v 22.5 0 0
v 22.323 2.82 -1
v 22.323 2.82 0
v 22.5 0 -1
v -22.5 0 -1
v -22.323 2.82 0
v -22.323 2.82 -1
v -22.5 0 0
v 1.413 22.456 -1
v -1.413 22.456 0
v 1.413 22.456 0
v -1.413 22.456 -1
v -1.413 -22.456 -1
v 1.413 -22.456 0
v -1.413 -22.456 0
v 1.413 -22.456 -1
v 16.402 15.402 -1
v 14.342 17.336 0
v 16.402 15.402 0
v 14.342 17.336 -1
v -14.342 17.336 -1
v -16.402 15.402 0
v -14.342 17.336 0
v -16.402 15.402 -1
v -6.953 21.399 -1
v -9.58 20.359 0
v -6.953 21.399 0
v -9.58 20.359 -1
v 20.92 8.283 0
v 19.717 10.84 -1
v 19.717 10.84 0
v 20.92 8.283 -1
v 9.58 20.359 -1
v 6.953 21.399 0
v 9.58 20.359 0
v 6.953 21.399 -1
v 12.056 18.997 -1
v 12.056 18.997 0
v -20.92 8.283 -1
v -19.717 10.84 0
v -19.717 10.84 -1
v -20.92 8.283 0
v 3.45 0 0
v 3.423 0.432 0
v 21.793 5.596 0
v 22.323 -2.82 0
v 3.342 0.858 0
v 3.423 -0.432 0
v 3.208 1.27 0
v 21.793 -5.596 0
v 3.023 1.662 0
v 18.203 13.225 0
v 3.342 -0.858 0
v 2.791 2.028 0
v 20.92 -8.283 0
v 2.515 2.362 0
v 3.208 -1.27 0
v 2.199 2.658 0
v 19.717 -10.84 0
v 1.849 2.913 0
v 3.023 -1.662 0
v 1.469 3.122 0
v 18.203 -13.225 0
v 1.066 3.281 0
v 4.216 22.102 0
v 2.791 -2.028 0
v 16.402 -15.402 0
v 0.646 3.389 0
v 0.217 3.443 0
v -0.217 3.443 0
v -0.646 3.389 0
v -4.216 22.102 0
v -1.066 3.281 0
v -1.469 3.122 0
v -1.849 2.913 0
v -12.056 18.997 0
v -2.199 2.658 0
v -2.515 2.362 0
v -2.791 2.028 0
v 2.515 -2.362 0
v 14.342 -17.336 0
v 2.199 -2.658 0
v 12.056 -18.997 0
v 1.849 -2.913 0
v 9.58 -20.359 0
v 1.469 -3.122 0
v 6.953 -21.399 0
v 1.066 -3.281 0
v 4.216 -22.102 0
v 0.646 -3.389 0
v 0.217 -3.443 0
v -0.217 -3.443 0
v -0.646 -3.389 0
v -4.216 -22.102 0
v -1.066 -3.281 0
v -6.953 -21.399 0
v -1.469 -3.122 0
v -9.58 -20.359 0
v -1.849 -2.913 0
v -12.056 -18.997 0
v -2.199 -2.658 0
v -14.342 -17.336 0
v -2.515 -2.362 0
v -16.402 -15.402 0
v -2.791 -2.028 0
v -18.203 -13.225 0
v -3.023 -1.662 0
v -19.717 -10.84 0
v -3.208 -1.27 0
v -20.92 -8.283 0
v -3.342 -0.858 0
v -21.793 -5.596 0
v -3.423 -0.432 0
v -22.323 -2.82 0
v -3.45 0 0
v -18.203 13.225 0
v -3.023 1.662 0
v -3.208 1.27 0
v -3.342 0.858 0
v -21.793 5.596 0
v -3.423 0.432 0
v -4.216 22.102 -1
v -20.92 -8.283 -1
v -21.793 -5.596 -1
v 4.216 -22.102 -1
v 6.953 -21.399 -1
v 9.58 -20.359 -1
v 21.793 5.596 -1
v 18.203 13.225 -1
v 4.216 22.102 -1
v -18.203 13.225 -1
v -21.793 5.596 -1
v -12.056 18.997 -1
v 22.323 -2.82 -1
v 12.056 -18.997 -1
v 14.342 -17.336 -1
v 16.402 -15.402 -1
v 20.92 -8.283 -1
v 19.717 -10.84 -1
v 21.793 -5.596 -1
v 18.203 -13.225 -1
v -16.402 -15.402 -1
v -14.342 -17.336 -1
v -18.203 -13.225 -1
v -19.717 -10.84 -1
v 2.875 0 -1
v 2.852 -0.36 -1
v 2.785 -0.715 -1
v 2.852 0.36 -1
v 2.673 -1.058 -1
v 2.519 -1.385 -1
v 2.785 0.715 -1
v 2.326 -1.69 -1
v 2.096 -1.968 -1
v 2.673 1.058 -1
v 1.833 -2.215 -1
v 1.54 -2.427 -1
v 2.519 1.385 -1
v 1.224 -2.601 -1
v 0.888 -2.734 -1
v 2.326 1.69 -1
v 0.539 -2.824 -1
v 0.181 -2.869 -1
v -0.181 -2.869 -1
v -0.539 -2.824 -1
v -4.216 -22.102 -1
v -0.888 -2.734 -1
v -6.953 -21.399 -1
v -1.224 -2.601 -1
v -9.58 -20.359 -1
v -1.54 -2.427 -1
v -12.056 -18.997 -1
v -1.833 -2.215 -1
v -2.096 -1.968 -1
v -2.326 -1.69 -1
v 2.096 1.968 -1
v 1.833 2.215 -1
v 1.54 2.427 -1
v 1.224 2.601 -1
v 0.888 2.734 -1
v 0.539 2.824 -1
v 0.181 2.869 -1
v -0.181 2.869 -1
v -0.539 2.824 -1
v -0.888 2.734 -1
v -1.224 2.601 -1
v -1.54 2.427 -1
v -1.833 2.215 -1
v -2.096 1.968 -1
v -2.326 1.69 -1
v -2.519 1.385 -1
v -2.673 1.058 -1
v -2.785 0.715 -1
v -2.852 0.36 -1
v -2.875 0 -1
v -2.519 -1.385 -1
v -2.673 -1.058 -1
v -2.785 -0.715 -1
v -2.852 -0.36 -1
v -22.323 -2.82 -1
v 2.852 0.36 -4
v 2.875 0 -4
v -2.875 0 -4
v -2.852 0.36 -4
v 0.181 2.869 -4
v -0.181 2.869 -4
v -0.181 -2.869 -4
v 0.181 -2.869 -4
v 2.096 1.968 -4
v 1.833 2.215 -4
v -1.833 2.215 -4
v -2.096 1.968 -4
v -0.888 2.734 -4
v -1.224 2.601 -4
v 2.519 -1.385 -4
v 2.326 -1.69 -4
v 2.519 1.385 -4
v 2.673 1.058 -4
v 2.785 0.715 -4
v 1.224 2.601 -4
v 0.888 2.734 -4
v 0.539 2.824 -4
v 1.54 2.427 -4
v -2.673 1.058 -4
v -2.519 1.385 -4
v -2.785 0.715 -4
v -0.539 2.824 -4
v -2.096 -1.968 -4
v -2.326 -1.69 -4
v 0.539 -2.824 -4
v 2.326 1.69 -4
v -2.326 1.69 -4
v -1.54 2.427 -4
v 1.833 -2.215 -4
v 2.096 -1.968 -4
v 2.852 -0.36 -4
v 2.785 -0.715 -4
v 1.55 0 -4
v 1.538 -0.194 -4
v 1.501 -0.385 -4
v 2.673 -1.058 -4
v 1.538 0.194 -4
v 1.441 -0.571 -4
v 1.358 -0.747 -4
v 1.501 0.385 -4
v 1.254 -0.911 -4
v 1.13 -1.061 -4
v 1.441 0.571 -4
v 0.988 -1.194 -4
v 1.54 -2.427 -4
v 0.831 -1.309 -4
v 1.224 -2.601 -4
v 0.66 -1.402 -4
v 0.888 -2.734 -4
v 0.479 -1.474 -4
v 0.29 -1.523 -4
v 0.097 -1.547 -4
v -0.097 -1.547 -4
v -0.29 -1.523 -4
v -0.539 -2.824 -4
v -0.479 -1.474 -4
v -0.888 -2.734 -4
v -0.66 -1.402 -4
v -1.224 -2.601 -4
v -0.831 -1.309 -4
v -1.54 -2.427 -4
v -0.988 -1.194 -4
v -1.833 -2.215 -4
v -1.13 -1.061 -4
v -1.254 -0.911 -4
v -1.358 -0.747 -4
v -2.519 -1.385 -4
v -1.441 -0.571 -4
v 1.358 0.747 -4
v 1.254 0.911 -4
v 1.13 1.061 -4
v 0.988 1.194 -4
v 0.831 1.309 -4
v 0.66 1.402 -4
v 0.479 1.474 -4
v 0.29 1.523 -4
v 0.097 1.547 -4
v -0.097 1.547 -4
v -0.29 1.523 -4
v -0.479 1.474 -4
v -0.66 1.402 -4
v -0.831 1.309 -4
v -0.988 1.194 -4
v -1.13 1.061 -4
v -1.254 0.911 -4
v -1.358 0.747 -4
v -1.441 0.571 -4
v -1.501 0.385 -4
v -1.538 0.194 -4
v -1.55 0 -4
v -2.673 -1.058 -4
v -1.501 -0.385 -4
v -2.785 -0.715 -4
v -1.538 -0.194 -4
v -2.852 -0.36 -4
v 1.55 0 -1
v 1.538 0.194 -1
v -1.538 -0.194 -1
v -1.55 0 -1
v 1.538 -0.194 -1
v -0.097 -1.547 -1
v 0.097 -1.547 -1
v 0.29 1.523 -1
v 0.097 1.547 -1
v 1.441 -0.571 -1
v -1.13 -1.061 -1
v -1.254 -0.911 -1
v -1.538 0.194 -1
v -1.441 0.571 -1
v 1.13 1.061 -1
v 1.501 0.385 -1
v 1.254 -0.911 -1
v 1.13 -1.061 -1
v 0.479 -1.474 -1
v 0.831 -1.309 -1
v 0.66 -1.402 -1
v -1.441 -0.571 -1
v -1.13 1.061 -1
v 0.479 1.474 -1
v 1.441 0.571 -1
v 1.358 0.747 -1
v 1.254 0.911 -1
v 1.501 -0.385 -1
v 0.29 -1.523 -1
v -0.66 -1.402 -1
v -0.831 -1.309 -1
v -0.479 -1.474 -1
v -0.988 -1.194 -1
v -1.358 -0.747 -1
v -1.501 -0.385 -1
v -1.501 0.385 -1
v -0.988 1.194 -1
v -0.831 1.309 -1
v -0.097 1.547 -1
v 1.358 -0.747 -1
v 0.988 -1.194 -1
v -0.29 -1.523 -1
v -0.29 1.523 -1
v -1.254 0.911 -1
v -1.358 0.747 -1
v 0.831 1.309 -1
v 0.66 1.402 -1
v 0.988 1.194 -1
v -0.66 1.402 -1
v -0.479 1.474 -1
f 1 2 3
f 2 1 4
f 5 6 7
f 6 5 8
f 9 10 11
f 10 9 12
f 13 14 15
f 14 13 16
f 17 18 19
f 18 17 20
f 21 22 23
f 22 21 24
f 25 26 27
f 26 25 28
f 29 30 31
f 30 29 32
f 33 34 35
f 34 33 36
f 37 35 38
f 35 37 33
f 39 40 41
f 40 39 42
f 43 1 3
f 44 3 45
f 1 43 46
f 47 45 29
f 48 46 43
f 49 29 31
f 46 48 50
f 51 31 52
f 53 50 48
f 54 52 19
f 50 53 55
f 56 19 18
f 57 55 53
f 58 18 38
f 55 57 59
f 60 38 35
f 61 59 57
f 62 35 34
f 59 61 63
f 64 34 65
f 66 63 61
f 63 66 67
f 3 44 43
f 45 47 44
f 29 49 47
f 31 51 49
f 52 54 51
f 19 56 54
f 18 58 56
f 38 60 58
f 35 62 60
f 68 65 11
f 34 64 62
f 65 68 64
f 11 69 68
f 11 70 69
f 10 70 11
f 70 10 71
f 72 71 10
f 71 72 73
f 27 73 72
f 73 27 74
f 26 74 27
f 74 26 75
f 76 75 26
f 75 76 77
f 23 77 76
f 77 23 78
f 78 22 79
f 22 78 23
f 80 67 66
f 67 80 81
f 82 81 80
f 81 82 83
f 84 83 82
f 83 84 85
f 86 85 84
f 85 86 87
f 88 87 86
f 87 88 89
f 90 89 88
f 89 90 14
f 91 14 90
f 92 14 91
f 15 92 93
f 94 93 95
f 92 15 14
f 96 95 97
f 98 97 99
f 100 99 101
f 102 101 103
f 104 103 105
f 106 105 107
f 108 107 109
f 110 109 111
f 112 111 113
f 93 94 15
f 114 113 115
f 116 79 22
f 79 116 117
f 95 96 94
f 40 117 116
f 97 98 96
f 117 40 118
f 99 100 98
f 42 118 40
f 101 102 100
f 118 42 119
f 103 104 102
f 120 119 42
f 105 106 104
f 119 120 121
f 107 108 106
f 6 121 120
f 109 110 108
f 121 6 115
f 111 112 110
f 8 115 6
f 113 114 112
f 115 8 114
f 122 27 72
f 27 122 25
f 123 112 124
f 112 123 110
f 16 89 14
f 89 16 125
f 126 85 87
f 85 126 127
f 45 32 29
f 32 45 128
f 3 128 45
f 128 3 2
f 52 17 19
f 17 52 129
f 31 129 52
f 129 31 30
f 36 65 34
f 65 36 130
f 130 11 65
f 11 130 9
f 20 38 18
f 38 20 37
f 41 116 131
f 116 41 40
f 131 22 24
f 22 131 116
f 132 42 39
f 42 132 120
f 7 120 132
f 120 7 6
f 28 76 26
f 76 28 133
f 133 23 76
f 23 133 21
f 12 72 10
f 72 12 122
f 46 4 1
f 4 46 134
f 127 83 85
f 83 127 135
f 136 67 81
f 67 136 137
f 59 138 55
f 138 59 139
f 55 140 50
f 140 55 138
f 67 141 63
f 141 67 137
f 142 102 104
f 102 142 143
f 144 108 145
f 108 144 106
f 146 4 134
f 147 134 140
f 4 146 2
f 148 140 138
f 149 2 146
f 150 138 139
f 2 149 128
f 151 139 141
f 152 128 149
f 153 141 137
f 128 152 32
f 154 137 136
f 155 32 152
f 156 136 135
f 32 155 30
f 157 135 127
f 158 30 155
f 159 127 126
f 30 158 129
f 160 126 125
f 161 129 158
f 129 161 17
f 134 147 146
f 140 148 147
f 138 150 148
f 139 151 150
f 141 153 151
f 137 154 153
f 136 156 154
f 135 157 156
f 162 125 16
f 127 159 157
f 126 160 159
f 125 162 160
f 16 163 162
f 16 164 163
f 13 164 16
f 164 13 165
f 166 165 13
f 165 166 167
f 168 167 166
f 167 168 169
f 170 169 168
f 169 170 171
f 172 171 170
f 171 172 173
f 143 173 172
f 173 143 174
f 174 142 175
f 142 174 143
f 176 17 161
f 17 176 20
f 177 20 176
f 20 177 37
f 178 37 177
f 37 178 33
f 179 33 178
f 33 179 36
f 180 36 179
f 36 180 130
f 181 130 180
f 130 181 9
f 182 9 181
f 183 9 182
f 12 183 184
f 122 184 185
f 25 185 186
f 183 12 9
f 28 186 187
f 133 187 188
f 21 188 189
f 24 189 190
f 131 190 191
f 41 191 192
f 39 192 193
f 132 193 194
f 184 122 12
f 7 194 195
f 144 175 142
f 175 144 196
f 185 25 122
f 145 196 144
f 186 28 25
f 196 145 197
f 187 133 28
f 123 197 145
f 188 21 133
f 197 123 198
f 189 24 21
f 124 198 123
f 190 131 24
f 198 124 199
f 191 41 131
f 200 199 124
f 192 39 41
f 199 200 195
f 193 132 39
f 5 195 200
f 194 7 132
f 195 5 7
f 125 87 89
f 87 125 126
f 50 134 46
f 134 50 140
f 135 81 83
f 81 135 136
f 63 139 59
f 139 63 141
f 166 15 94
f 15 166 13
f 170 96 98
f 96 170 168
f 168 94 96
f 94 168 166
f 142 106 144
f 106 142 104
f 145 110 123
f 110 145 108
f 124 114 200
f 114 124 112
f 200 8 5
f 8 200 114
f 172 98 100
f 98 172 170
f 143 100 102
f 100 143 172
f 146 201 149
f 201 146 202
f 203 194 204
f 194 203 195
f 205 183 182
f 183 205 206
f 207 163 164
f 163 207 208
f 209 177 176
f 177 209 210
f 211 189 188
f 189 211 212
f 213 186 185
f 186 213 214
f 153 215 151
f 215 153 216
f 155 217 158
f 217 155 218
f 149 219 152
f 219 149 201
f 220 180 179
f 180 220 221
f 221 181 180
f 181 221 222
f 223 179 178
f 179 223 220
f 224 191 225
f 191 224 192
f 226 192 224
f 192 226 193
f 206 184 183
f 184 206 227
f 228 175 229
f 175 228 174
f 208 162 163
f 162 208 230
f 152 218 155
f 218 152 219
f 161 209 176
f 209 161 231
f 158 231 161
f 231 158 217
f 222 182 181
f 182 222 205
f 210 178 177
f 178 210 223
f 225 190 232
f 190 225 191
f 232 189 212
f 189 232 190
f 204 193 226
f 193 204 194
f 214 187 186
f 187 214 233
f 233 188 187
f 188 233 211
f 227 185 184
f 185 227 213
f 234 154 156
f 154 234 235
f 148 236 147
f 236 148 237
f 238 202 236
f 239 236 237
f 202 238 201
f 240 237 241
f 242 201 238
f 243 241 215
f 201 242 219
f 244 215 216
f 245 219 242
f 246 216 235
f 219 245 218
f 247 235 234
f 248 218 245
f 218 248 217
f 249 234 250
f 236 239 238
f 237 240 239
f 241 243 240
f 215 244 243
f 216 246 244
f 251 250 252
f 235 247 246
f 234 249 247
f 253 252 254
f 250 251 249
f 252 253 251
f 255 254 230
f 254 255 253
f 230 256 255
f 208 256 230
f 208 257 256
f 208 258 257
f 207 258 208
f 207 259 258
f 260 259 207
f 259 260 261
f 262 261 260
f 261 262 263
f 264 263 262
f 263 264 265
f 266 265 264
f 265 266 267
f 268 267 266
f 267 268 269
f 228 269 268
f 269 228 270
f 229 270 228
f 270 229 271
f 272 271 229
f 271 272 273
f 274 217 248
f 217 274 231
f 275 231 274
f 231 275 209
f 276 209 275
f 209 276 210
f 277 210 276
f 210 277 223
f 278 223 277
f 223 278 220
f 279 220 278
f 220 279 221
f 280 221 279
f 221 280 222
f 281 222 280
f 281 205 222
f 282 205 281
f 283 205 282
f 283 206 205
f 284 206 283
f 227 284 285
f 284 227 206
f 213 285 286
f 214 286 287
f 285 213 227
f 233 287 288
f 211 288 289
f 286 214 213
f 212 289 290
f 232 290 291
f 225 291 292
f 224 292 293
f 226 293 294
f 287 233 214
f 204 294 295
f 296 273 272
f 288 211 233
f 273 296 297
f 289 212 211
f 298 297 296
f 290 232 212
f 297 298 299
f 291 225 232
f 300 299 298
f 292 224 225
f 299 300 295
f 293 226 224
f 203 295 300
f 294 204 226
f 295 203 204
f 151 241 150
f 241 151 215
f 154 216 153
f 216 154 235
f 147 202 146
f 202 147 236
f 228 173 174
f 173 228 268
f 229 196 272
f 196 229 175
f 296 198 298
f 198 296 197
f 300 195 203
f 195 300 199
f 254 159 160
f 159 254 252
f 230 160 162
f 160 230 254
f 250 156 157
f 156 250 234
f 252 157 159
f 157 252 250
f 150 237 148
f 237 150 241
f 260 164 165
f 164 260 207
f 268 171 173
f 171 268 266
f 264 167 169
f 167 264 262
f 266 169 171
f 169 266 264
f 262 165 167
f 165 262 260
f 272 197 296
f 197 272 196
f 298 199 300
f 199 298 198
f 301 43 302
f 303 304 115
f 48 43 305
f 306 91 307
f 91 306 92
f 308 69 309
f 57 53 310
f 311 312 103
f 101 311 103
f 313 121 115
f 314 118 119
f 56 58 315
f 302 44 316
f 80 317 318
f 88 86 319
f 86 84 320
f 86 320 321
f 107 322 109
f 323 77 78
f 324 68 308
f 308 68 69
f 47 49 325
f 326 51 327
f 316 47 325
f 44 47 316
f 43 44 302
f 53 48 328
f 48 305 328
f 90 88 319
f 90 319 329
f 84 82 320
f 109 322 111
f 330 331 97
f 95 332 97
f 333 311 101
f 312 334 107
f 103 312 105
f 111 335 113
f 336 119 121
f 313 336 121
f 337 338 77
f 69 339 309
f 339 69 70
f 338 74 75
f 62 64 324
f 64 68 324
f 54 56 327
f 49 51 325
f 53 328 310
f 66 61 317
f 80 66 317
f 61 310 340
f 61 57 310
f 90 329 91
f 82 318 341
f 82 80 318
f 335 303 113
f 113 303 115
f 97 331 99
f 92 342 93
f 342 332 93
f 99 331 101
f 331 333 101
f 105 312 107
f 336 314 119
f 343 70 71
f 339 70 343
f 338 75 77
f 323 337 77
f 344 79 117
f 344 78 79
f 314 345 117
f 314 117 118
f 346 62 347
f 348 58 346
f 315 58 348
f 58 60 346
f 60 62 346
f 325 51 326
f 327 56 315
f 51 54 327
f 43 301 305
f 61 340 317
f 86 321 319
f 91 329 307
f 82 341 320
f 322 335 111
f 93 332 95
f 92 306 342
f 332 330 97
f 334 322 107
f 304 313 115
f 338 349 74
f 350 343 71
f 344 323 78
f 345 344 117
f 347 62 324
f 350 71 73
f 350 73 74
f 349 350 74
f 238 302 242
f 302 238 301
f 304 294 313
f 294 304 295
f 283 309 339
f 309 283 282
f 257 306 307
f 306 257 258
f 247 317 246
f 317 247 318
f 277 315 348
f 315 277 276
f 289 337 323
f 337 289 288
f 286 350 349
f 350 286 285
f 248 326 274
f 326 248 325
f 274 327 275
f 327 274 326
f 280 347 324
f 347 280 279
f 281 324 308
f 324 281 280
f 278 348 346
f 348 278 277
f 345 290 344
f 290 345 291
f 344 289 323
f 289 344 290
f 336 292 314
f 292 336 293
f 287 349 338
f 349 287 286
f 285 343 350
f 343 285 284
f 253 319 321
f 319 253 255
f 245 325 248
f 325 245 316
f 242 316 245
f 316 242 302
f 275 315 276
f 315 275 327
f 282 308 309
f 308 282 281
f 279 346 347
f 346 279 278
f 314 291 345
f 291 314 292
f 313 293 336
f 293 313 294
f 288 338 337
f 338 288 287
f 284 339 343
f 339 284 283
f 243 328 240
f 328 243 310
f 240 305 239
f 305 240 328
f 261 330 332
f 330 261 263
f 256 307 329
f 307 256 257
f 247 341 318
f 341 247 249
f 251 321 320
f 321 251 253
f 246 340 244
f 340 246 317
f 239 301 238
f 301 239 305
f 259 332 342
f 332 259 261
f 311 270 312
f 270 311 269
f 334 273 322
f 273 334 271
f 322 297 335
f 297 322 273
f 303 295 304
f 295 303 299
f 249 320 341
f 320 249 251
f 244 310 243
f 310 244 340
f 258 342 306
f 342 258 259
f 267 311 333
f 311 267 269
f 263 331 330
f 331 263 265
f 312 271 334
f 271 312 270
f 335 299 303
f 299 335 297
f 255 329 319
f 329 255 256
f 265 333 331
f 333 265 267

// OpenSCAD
$fn = 50;


difference() {
	union() {
		translate(v = [0, 0, -1.0000000000]) {
			cylinder(h = 1.0000000000, r = 22.5000000000);
		}
		translate(v = [0, 0, -4.0000000000]) {
			cylinder(h = 4.0000000000, r = 2.8750000000);
		}
	}
	union() {
		translate(v = [0, 0, 0]) {
			rotate(a = [0, 0, 0]) {
				difference() {
					union() {
						translate(v = [0, 0, -4.0000000000]) {
							cylinder(h = 4.0000000000, r = 1.2500000000);
						}
						translate(v = [0, 0, -1.0000000000]) {
							cylinder(h = 1.0000000000, r1 = 1.5500000000, r2 = 3.4500000000);
						}
						translate(v = [0, 0, -4.0000000000]) {
							cylinder(h = 4.0000000000, r = 1.5500000000);
						}
						translate(v = [0, 0, -4.0000000000]) {
							cylinder(h = 4.0000000000, r = 1.2500000000);
						}
					}
					union();
				}
			}
		}
	}
}
